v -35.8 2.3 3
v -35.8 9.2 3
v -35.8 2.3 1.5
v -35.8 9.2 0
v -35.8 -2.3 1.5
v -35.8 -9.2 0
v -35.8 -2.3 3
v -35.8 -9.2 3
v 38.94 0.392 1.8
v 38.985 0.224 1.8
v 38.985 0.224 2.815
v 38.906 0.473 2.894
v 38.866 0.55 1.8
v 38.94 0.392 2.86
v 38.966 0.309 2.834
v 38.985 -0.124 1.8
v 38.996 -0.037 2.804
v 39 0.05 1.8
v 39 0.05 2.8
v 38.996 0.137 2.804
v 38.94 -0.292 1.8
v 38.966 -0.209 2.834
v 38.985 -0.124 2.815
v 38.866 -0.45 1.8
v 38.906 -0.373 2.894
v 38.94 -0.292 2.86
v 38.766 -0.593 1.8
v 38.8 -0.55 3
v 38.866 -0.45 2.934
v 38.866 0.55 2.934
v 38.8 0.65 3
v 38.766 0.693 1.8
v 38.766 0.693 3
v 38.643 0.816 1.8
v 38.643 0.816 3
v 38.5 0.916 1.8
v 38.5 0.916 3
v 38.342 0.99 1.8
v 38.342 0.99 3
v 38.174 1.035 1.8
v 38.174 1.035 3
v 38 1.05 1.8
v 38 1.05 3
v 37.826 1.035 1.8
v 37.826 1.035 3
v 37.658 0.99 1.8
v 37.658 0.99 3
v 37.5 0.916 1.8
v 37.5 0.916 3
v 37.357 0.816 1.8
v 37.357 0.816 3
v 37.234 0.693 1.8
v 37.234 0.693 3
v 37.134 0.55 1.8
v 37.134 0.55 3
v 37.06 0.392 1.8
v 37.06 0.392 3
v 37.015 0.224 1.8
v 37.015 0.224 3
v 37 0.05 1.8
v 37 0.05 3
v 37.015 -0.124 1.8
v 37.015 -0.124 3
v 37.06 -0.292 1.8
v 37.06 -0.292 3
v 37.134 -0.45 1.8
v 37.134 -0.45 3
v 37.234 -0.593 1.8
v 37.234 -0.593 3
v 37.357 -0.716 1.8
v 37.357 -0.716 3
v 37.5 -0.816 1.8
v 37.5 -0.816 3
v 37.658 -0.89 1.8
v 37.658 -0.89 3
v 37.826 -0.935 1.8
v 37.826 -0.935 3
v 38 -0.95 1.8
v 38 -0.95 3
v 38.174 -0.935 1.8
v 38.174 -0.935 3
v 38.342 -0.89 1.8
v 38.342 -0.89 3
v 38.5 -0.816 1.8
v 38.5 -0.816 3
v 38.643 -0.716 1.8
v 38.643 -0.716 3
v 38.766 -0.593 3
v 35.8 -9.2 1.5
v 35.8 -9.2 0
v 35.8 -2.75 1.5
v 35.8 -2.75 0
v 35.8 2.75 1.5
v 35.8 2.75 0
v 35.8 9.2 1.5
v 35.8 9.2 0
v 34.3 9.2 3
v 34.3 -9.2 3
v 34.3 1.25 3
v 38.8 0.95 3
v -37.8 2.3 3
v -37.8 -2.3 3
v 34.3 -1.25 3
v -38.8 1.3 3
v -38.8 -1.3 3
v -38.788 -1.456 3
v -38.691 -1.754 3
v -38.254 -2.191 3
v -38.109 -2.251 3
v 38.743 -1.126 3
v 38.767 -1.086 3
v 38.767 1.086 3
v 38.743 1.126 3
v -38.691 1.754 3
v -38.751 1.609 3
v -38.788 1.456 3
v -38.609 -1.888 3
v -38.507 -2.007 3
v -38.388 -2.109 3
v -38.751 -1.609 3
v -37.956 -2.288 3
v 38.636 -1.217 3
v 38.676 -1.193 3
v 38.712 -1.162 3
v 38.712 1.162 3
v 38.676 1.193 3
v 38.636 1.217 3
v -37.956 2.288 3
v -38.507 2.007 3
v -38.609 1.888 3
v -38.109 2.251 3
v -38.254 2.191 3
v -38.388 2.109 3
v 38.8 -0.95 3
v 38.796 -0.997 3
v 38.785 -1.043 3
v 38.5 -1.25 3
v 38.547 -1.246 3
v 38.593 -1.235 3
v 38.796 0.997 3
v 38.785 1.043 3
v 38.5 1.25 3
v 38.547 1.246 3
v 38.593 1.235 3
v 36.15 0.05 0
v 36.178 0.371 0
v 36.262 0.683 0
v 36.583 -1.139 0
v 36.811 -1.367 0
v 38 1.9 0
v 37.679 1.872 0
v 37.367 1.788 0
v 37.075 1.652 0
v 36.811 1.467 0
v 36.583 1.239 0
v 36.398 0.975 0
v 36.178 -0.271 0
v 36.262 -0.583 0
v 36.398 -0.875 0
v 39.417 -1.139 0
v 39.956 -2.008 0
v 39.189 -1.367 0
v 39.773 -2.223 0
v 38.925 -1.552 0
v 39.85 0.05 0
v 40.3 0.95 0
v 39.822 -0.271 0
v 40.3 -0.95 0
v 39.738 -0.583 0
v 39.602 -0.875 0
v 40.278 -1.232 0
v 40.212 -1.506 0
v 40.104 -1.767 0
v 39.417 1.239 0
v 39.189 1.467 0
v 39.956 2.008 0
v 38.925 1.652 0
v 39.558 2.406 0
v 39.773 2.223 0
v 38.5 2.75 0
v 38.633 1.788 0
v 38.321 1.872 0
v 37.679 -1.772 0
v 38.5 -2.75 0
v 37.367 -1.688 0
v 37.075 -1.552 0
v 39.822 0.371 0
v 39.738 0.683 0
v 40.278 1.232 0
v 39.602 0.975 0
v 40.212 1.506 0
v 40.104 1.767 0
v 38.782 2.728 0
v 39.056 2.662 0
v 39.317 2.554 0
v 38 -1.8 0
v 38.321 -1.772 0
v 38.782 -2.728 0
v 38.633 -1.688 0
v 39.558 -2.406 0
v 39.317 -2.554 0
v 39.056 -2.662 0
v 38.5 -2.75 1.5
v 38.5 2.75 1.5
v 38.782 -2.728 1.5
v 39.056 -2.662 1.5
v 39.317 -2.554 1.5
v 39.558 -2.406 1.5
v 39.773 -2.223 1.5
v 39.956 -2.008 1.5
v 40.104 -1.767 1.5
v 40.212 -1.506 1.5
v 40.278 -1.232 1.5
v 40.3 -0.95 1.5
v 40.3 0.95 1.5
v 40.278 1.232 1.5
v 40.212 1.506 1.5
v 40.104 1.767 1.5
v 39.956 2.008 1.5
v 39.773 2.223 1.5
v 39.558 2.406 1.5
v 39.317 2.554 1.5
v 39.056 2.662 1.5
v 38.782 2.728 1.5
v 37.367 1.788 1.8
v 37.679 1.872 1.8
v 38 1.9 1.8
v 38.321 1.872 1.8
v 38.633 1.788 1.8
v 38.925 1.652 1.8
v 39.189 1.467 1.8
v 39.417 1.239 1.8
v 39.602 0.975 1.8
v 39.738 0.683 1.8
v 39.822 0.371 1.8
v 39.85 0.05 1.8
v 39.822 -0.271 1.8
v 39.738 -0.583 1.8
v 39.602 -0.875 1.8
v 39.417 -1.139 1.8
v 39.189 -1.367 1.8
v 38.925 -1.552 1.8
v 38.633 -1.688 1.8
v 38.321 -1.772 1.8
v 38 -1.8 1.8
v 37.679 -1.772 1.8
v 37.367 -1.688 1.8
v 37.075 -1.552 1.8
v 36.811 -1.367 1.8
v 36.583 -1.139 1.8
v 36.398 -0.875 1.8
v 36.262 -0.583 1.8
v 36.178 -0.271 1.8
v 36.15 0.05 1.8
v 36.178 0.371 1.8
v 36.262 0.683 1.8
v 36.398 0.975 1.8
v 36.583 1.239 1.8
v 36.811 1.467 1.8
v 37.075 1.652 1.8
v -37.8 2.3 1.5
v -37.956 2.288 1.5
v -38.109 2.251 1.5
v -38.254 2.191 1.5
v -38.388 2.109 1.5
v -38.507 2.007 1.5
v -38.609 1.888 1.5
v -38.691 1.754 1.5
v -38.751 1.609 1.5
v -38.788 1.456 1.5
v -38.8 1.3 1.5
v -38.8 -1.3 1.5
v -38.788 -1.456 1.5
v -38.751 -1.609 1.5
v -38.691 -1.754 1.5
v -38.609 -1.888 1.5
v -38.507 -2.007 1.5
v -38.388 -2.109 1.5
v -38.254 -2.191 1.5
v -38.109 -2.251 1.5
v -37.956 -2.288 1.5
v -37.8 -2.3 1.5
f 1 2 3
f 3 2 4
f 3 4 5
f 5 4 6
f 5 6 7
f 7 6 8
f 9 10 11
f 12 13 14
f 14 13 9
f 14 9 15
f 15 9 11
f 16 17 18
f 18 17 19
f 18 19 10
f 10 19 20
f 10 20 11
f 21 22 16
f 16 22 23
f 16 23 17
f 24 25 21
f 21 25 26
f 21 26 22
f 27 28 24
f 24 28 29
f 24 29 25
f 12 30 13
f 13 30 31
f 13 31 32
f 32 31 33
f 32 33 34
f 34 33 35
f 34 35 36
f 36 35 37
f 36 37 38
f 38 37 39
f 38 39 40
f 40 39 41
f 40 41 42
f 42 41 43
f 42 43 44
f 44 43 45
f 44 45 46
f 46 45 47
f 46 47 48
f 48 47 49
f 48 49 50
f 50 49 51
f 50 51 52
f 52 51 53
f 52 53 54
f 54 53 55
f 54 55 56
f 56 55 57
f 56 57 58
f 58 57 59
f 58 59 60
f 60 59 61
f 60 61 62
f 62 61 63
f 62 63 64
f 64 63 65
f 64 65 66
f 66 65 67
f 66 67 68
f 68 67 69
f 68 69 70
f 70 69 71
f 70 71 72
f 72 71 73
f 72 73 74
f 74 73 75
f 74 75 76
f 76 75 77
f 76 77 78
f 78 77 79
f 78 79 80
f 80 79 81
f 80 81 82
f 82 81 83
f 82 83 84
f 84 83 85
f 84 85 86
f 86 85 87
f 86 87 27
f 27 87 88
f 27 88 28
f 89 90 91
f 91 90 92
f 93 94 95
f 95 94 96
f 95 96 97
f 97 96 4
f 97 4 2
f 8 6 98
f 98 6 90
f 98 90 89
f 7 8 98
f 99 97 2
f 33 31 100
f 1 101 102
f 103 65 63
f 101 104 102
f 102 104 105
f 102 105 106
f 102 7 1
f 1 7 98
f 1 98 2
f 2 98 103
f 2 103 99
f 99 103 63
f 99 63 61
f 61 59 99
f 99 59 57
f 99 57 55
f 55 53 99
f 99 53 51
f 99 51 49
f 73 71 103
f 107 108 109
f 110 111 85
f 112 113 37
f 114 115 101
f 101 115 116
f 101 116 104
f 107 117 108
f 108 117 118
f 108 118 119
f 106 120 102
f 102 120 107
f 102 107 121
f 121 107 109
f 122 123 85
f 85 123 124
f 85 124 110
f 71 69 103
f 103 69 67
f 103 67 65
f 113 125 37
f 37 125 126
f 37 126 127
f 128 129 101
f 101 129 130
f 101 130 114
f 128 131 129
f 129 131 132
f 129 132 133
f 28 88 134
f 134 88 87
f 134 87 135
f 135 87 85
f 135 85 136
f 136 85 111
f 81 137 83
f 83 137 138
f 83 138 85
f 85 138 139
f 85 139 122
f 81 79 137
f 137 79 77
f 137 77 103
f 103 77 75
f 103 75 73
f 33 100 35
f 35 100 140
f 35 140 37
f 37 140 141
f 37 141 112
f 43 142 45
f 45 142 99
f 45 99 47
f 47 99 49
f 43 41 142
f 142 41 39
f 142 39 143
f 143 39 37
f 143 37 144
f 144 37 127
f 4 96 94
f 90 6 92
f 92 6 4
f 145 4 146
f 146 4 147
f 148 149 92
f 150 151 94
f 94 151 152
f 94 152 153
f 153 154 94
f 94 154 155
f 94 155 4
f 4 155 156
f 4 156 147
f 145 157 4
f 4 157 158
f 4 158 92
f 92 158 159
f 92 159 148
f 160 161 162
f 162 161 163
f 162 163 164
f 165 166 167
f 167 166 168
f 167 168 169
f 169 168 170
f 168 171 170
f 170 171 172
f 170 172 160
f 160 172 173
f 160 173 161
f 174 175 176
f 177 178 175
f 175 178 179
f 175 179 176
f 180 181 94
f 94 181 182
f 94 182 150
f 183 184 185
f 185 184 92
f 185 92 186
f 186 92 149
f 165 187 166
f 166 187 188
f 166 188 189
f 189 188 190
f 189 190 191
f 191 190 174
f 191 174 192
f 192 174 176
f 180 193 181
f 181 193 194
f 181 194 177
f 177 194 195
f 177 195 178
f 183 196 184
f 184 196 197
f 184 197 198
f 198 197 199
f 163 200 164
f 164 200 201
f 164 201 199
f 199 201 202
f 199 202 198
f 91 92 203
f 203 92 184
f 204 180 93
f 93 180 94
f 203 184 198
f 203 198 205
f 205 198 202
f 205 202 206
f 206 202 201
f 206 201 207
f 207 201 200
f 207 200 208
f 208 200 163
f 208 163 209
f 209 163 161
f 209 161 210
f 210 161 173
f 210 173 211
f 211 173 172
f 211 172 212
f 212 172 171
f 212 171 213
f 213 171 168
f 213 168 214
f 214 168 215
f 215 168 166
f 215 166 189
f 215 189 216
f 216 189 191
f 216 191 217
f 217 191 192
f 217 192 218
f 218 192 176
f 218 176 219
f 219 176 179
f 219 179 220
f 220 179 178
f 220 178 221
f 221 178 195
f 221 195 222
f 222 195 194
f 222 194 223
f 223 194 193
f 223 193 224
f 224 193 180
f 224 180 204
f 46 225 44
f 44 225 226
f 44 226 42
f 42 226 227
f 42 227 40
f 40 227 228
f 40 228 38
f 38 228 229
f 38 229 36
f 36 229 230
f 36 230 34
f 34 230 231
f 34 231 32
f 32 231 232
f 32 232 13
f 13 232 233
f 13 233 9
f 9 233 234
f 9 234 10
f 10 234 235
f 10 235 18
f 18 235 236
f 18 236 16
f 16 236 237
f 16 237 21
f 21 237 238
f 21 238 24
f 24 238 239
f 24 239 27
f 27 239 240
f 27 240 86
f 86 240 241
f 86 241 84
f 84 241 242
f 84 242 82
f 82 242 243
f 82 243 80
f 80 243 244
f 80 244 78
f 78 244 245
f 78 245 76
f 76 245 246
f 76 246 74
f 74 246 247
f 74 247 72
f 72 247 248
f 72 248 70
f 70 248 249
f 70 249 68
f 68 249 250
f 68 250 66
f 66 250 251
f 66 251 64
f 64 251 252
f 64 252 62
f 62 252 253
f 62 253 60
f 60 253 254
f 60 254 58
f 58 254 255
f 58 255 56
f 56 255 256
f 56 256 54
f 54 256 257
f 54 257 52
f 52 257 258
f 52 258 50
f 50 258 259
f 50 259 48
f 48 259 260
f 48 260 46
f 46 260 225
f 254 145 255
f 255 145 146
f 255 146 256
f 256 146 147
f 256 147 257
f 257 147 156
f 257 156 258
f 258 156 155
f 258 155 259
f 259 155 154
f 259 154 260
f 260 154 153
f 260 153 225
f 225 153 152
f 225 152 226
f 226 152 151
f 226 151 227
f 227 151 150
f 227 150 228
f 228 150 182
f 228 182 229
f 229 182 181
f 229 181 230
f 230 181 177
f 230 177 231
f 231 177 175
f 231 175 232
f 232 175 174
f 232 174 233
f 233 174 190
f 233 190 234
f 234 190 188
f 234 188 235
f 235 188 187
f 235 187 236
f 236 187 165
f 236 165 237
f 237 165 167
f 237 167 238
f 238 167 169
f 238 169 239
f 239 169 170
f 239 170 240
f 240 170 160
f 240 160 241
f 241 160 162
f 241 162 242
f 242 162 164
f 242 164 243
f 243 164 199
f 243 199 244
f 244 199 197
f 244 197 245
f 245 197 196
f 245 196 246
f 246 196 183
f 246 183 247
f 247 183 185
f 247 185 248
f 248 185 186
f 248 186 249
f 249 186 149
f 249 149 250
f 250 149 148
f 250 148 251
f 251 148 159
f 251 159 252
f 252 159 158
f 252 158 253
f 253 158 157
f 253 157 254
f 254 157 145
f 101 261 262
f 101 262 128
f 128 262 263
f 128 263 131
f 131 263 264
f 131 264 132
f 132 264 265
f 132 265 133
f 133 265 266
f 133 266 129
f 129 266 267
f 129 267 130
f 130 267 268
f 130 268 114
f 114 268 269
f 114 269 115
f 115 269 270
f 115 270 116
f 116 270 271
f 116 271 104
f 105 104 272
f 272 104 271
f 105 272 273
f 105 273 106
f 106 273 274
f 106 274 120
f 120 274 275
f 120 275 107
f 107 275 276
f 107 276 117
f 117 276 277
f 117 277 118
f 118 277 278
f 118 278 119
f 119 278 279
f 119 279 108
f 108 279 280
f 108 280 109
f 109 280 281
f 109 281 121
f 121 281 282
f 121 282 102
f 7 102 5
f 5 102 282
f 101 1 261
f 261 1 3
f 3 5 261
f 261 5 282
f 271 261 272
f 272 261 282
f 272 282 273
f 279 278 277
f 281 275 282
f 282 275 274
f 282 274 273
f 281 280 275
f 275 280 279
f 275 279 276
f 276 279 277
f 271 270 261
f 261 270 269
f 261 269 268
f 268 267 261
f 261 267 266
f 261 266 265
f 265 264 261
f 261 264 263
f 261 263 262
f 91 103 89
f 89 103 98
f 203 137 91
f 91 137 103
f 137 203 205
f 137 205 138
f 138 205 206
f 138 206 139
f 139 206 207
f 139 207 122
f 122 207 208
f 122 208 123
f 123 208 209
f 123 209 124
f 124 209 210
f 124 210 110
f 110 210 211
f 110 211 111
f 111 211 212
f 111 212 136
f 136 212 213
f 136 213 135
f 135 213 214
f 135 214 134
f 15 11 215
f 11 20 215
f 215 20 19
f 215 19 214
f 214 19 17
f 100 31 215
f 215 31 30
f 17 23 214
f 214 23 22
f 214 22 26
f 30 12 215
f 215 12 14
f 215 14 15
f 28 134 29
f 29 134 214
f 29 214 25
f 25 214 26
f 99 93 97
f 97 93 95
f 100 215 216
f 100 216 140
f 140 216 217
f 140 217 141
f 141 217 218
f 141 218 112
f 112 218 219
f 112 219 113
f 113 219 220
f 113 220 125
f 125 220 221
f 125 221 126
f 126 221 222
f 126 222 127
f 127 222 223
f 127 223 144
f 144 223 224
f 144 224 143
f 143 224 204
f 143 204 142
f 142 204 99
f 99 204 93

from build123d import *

# Parameters (mm, degrees)
SKETCH_1_W          = 71.6
SKETCH_1_H          = 18.4
EXTRUDE_1_DEPTH     = 3
SKETCH_3_R          = 1
EXTRUDE_2_DEPTH     = 3
SKETCH_4_R          = 1.85
CUT_EXTRUDE_1_DEPTH = 1.8
EXTRUDE_START       = -1.5
EXTRUDE_3_DEPTH     = 1.5
CHAMFER_1_SIZE      = 1.5


with BuildPart() as part:
    # 草图1 → 凸台-拉伸1 (new body)
    with BuildSketch(Plane.XY):
        Rectangle(SKETCH_1_W, SKETCH_1_H)
    extrude(amount=EXTRUDE_1_DEPTH)

    # 草图3 → 凸台-拉伸2 (add)
    with BuildSketch(Plane(origin=(0, 0, 0), x_dir=(-1, 0, 0), z_dir=(0, 0, -1))):
        with BuildLine():
            Line((-31.3, 2.75), (-38.5, 2.75))
            ThreePointArc((-38.5, 2.75), (-39.772792206, 2.222792206), (-40.3, 0.95))
            Line((-40.3, 0.95), (-40.3, -0.95))
            ThreePointArc((-40.3, -0.95), (-39.772792206, -2.222792206), (-38.5, -2.75))
            Line((-38.5, -2.75), (-31.3, -2.75))
            Line((-31.3, -2.75), (-31.3, 2.75))
        make_face()
        with Locations((-38, 0.05)):
            Circle(SKETCH_3_R, mode=Mode.SUBTRACT)
    extrude(amount=-EXTRUDE_2_DEPTH)

    # 草图4 → 切除-拉伸1 (cut)
    with BuildSketch(Plane(origin=(0, 0, 0), x_dir=(-1, 0, 0), z_dir=(0, 0, -1))):
        with Locations((-38, 0.05)):
            Circle(SKETCH_4_R)
    extrude(amount=-CUT_EXTRUDE_1_DEPTH, mode=Mode.SUBTRACT)

    # 草图5 → 凸台-拉伸3 (add)
    with BuildSketch(Plane(origin=(0, 0, 0), x_dir=(-1, 0, 0), z_dir=(0, 0, -1)).offset(EXTRUDE_START)):
        with BuildLine():
            Line((37.8, 2.3), (35.8, 2.3))
            Line((35.8, 2.3), (35.8, -2.3))
            Line((35.8, -2.3), (37.8, -2.3))
            ThreePointArc((37.8, -2.3), (38.507106781, -2.007106781), (38.8, -1.3))
            Line((38.8, -1.3), (38.8, 1.3))
            ThreePointArc((38.8, 1.3), (38.507106781, 2.007106781), (37.8, 2.3))
        make_face()
    extrude(amount=-EXTRUDE_3_DEPTH)

    # 倒角1
    # the kernel refuses this chamfer: 1.5 mm, written as the material it takes off along each edge
    with BuildSketch(Plane(origin=(35.8, 13.057524482, 3), x_dir=(0.027495876610586778, 0, -0.9996219169112968), z_dir=(0, -1, 0))) as chamfer_1_piece_1:
        Polygon((CHAMFER_1_SIZE * 0.999621916911, -CHAMFER_1_SIZE * 0.0274958766106), (-CHAMFER_1_SIZE * 0.0274958766106, -CHAMFER_1_SIZE * 0.999621916911), (0, 0), align=None)
    extrude(amount=10.307524482, mode=Mode.SUBTRACT)
    with BuildSketch(Plane(origin=(38.5, -2.75, 3), x_dir=(0, 0.9996219169112968, 0.02749587661058649), z_dir=(-1, 0, 0)), Plane(origin=(35.8, 2.75, 3), x_dir=(0, -0.9996219169112968, 0.02749587661058649), z_dir=(1, 0, 0))) as chamfer_1_piece_2:
        Polygon((CHAMFER_1_SIZE * 0.999621916911, CHAMFER_1_SIZE * 0.0274958766106), (-CHAMFER_1_SIZE * 0.0274958766106, CHAMFER_1_SIZE * 0.999621916911), (0, 0), align=None)
    extrude(amount=2.7, mode=Mode.SUBTRACT)
    with BuildSketch(Plane(origin=(38.5, -0.95, 3), x_dir=(1, 0, 0), z_dir=(0, 1, 0))) as chamfer_1_piece_3:
        Polygon((1.8 - CHAMFER_1_SIZE, 0), (1.8, CHAMFER_1_SIZE), (1.8, 0), align=None)
    revolve(axis=Axis((38.5, -0.95, 3), (0, 0, -1)), revolution_arc=90, mode=Mode.SUBTRACT)
    with BuildSketch(Plane(origin=(40.3, 0.95, 3), x_dir=(-0.9996219169112968, 0, 0.02749587661058648), z_dir=(0, -1, 0))) as chamfer_1_piece_4:
        Polygon((CHAMFER_1_SIZE * 0.999621916911, CHAMFER_1_SIZE * 0.0274958766106), (-CHAMFER_1_SIZE * 0.0274958766106, CHAMFER_1_SIZE * 0.999621916911), (0, 0), align=None)
    extrude(amount=1.9, mode=Mode.SUBTRACT)
    with BuildSketch(Plane(origin=(38.5, 0.95, 3), x_dir=(0, 1, 0), z_dir=(-1, 0, 0))) as chamfer_1_piece_5:
        Polygon((1.8 - CHAMFER_1_SIZE, 0), (1.8, CHAMFER_1_SIZE), (1.8, 0), align=None)
    revolve(axis=Axis((38.5, 0.95, 3), (0, 0, -1)), revolution_arc=90, mode=Mode.SUBTRACT)
    with BuildSketch(Plane(origin=(35.8, -2.75, 3), x_dir=(-0.9996219169112968, 0, 0.02749587661058648), z_dir=(0, -1, 0))) as chamfer_1_piece_6:
        Polygon((CHAMFER_1_SIZE * 0.999621916911, CHAMFER_1_SIZE * 0.0274958766106), (-CHAMFER_1_SIZE * 0.0274958766106, CHAMFER_1_SIZE * 0.999621916911), (0, 0), align=None)
    extrude(amount=10.307524482, mode=Mode.SUBTRACT)
    with BuildSketch(Plane(origin=(35.8, 13.057524482, 3), x_dir=(0.027495876610586778, 0, -0.9996219169112968), z_dir=(0, -1, 0))) as chamfer_1_piece_7a_section:
        Polygon((CHAMFER_1_SIZE * 0.999621916911, -CHAMFER_1_SIZE * 0.0274958766106), (-CHAMFER_1_SIZE * 0.0274958766106, -CHAMFER_1_SIZE * 0.999621916911), (0, 0), align=None)
    chamfer_1_piece_7a = extrude(amount=14.165048964, mode=Mode.PRIVATE)
    chamfer_1_piece_7a = split(chamfer_1_piece_7a, bisect_by=Plane(origin=(35.30530956, 2.75, 2.50530956), z_dir=(0, -1, 0)), keep=Keep.TOP, mode=Mode.PRIVATE)
    with BuildSketch(Plane(origin=(31.942475518, 2.75, 3), x_dir=(0, -0.9996219169112968, 0.02749587661058649), z_dir=(1, 0, 0))) as chamfer_1_piece_7b_section:
        Polygon((CHAMFER_1_SIZE * 0.999621916911, CHAMFER_1_SIZE * 0.0274958766106), (-CHAMFER_1_SIZE * 0.0274958766106, CHAMFER_1_SIZE * 0.999621916911), (0, 0), align=None)
    chamfer_1_piece_7b = extrude(amount=6.557524482, mode=Mode.PRIVATE)
    chamfer_1_piece_7b = split(chamfer_1_piece_7b, bisect_by=Plane(origin=(35.8, 2.25530956, 2.50530956), z_dir=(-1, 0, 0)), keep=Keep.TOP, mode=Mode.PRIVATE)
    chamfer_1_piece_7 = chamfer_1_piece_7a & chamfer_1_piece_7b
    add(chamfer_1_piece_7, mode=Mode.SUBTRACT)
    with BuildSketch(Plane(origin=(38.5, -2.75, 3), x_dir=(0, 0.9996219169112968, 0.02749587661058649), z_dir=(-1, 0, 0))) as chamfer_1_piece_8a_section:
        Polygon((CHAMFER_1_SIZE * 0.999621916911, CHAMFER_1_SIZE * 0.0274958766106), (-CHAMFER_1_SIZE * 0.0274958766106, CHAMFER_1_SIZE * 0.999621916911), (0, 0), align=None)
    chamfer_1_piece_8a = extrude(amount=6.557524482, mode=Mode.PRIVATE)
    chamfer_1_piece_8a = split(chamfer_1_piece_8a, bisect_by=Plane(origin=(35.8, -2.25530956, 2.50530956), z_dir=(-1, 0, 0)), keep=Keep.TOP, mode=Mode.PRIVATE)
    with BuildSketch(Plane(origin=(35.8, 1.107524482, 3), x_dir=(-0.9996219169112968, 0, 0.02749587661058648), z_dir=(0, -1, 0))) as chamfer_1_piece_8b_section:
        Polygon((CHAMFER_1_SIZE * 0.999621916911, CHAMFER_1_SIZE * 0.0274958766106), (-CHAMFER_1_SIZE * 0.0274958766106, CHAMFER_1_SIZE * 0.999621916911), (0, 0), align=None)
    chamfer_1_piece_8b = extrude(amount=14.165048964, mode=Mode.PRIVATE)
    chamfer_1_piece_8b = split(chamfer_1_piece_8b, bisect_by=Plane(origin=(35.30530956, -2.75, 2.50530956), z_dir=(0, 1, 0)), keep=Keep.TOP, mode=Mode.PRIVATE)
    chamfer_1_piece_8 = chamfer_1_piece_8a & chamfer_1_piece_8b
    add(chamfer_1_piece_8, mode=Mode.SUBTRACT)


solid = part.part
